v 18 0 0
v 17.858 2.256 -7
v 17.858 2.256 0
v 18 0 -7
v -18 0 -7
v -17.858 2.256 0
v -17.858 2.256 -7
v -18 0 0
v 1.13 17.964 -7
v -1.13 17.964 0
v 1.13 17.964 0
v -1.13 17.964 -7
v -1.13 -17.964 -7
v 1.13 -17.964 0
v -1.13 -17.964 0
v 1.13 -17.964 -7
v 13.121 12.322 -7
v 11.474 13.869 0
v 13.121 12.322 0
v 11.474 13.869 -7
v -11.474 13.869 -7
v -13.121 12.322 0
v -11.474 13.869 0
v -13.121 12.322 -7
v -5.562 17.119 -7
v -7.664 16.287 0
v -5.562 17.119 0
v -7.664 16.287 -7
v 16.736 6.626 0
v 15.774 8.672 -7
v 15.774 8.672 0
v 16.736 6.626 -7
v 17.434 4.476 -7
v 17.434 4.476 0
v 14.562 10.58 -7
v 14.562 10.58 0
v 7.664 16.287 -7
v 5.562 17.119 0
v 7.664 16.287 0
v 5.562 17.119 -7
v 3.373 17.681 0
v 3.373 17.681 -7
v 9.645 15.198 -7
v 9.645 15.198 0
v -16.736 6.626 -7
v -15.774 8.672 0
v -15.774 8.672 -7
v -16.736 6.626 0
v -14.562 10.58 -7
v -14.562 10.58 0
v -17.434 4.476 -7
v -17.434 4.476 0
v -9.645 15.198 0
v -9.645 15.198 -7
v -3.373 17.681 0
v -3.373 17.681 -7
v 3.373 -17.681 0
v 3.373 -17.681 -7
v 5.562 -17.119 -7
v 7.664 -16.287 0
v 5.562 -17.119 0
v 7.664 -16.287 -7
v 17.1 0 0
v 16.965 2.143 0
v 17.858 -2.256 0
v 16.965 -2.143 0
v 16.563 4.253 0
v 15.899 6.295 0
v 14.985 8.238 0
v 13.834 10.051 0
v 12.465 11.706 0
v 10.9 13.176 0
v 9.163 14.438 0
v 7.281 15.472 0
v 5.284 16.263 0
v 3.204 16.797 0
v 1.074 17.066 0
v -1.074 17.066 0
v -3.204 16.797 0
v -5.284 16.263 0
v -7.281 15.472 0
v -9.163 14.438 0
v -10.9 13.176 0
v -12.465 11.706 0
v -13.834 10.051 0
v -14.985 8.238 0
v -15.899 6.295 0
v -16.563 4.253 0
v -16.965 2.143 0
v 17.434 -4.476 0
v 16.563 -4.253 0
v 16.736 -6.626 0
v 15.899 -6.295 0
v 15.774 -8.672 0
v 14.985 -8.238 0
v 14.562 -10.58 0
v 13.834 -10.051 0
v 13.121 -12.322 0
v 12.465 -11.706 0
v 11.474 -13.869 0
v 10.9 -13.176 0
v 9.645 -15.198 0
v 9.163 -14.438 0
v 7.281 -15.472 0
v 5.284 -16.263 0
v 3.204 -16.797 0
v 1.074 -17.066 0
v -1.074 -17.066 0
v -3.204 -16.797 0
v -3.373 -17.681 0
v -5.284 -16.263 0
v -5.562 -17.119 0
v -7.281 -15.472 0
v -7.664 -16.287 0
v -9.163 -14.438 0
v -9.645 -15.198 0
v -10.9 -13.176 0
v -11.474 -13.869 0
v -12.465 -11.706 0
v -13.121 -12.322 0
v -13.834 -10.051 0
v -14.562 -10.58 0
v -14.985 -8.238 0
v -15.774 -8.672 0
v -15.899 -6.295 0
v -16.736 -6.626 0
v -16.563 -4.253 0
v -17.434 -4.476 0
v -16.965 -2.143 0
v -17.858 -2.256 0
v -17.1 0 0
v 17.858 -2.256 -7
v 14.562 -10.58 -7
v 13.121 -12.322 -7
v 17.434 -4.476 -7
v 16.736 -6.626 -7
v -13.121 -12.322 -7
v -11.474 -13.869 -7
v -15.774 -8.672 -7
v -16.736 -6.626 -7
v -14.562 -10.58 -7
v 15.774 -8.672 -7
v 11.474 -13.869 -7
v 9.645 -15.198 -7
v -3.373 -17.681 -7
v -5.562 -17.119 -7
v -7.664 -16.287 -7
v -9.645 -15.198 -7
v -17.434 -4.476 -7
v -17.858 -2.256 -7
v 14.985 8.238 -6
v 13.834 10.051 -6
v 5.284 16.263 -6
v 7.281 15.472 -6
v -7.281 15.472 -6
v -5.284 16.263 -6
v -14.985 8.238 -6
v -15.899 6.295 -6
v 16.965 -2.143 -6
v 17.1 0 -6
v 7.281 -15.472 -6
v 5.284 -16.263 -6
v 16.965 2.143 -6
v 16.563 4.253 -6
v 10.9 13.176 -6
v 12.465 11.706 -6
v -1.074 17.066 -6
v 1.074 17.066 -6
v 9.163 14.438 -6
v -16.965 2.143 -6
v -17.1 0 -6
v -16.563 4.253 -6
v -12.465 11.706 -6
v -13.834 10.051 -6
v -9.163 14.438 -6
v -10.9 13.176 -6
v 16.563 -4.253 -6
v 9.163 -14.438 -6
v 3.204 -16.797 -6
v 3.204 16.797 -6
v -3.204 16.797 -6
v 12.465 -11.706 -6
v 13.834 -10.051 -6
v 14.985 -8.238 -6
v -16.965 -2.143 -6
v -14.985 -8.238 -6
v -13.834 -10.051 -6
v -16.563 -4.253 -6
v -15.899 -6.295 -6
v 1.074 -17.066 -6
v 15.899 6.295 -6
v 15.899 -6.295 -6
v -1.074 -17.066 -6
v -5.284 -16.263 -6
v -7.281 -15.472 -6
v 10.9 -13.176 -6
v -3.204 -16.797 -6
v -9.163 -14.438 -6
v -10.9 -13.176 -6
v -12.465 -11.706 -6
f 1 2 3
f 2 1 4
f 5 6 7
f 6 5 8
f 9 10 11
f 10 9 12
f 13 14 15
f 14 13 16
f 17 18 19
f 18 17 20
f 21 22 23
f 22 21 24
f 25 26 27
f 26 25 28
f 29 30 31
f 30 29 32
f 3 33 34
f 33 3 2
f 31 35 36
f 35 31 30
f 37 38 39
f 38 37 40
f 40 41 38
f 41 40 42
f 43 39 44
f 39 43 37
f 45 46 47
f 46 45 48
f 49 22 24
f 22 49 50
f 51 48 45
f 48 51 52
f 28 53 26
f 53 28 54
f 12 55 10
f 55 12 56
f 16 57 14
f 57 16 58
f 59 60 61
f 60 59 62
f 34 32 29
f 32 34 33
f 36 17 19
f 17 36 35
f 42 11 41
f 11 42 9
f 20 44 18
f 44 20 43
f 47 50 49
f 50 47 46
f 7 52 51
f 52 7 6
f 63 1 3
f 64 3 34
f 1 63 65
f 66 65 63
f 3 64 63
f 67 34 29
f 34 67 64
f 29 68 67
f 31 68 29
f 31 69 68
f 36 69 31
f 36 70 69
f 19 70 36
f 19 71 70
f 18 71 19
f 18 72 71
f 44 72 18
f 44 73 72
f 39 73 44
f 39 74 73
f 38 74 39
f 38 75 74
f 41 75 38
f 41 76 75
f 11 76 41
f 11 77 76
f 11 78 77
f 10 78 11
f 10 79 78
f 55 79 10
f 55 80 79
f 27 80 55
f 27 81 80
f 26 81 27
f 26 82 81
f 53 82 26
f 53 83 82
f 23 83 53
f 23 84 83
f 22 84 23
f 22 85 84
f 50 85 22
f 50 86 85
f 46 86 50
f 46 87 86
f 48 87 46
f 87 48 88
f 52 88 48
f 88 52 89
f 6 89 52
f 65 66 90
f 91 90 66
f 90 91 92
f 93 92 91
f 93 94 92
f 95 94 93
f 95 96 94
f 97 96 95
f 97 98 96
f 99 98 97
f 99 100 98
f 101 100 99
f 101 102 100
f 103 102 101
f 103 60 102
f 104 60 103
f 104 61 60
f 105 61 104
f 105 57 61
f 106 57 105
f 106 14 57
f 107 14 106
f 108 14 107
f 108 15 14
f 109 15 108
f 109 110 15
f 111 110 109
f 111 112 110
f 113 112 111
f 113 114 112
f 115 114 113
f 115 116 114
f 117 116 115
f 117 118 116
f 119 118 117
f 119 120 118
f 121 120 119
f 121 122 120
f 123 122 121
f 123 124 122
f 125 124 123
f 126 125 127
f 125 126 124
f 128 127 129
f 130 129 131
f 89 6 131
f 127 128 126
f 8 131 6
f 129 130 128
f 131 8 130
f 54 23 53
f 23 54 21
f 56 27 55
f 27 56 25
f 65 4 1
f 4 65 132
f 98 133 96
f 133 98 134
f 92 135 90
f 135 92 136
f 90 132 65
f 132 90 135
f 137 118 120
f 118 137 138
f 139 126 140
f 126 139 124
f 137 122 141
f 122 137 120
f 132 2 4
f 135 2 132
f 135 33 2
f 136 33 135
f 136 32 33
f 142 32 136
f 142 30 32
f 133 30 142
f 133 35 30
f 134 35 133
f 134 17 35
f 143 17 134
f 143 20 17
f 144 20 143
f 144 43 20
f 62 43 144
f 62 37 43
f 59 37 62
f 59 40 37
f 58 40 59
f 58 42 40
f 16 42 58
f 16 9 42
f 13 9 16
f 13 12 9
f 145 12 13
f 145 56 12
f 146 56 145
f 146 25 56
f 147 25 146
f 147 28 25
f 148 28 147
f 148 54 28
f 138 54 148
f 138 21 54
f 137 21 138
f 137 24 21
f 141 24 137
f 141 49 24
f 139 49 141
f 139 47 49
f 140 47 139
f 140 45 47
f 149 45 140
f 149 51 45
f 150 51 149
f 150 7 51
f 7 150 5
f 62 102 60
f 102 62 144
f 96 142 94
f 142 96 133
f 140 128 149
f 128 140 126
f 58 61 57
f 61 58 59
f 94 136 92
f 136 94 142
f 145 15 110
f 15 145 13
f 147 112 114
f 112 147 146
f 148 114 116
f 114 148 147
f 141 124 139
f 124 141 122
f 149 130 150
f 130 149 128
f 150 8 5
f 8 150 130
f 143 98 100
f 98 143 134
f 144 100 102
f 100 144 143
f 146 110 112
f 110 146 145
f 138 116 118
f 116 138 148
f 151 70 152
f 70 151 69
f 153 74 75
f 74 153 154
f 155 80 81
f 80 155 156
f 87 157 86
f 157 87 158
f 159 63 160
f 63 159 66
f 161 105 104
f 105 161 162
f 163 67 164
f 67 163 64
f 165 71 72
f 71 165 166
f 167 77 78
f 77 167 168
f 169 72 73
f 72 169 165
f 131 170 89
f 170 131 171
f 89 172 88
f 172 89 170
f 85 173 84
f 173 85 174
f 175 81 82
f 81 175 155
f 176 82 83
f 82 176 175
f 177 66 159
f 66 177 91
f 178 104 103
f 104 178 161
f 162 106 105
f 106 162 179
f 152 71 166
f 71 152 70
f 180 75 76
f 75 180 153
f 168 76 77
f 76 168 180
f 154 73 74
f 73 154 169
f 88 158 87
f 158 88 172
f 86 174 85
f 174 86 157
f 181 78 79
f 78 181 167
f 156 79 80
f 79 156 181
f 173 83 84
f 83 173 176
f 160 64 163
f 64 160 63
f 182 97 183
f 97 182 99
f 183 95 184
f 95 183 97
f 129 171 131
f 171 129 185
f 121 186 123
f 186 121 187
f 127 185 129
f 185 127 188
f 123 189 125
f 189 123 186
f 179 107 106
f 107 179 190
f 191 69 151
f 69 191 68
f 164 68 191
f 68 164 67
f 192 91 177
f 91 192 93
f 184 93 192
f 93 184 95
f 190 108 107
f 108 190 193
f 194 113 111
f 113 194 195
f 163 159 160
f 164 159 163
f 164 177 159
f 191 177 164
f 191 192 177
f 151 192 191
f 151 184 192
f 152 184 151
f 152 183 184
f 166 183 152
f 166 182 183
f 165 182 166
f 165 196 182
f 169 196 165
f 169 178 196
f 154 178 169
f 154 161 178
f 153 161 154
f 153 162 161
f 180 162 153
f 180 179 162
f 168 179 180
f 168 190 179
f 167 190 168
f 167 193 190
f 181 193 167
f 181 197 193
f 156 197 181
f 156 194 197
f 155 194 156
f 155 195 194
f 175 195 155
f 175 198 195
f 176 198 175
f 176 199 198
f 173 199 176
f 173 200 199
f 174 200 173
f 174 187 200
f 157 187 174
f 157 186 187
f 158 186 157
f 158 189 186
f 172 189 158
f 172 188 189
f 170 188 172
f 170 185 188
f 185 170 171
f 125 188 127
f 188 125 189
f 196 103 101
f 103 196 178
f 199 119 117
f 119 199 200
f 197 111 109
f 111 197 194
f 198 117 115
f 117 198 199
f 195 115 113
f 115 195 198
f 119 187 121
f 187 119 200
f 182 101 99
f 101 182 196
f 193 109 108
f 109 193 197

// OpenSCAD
$fn = 50;


difference() {
	union() {
		translate(v = [0, 0, -7.0000000000]) {
			cylinder(h = 7, r = 18.0000000000);
		}
	}
	union() {
		#translate(v = [0, 0, -6.0000000000]) {
			cylinder(h = 6, r = 17.1000000000);
		}
	}
}
